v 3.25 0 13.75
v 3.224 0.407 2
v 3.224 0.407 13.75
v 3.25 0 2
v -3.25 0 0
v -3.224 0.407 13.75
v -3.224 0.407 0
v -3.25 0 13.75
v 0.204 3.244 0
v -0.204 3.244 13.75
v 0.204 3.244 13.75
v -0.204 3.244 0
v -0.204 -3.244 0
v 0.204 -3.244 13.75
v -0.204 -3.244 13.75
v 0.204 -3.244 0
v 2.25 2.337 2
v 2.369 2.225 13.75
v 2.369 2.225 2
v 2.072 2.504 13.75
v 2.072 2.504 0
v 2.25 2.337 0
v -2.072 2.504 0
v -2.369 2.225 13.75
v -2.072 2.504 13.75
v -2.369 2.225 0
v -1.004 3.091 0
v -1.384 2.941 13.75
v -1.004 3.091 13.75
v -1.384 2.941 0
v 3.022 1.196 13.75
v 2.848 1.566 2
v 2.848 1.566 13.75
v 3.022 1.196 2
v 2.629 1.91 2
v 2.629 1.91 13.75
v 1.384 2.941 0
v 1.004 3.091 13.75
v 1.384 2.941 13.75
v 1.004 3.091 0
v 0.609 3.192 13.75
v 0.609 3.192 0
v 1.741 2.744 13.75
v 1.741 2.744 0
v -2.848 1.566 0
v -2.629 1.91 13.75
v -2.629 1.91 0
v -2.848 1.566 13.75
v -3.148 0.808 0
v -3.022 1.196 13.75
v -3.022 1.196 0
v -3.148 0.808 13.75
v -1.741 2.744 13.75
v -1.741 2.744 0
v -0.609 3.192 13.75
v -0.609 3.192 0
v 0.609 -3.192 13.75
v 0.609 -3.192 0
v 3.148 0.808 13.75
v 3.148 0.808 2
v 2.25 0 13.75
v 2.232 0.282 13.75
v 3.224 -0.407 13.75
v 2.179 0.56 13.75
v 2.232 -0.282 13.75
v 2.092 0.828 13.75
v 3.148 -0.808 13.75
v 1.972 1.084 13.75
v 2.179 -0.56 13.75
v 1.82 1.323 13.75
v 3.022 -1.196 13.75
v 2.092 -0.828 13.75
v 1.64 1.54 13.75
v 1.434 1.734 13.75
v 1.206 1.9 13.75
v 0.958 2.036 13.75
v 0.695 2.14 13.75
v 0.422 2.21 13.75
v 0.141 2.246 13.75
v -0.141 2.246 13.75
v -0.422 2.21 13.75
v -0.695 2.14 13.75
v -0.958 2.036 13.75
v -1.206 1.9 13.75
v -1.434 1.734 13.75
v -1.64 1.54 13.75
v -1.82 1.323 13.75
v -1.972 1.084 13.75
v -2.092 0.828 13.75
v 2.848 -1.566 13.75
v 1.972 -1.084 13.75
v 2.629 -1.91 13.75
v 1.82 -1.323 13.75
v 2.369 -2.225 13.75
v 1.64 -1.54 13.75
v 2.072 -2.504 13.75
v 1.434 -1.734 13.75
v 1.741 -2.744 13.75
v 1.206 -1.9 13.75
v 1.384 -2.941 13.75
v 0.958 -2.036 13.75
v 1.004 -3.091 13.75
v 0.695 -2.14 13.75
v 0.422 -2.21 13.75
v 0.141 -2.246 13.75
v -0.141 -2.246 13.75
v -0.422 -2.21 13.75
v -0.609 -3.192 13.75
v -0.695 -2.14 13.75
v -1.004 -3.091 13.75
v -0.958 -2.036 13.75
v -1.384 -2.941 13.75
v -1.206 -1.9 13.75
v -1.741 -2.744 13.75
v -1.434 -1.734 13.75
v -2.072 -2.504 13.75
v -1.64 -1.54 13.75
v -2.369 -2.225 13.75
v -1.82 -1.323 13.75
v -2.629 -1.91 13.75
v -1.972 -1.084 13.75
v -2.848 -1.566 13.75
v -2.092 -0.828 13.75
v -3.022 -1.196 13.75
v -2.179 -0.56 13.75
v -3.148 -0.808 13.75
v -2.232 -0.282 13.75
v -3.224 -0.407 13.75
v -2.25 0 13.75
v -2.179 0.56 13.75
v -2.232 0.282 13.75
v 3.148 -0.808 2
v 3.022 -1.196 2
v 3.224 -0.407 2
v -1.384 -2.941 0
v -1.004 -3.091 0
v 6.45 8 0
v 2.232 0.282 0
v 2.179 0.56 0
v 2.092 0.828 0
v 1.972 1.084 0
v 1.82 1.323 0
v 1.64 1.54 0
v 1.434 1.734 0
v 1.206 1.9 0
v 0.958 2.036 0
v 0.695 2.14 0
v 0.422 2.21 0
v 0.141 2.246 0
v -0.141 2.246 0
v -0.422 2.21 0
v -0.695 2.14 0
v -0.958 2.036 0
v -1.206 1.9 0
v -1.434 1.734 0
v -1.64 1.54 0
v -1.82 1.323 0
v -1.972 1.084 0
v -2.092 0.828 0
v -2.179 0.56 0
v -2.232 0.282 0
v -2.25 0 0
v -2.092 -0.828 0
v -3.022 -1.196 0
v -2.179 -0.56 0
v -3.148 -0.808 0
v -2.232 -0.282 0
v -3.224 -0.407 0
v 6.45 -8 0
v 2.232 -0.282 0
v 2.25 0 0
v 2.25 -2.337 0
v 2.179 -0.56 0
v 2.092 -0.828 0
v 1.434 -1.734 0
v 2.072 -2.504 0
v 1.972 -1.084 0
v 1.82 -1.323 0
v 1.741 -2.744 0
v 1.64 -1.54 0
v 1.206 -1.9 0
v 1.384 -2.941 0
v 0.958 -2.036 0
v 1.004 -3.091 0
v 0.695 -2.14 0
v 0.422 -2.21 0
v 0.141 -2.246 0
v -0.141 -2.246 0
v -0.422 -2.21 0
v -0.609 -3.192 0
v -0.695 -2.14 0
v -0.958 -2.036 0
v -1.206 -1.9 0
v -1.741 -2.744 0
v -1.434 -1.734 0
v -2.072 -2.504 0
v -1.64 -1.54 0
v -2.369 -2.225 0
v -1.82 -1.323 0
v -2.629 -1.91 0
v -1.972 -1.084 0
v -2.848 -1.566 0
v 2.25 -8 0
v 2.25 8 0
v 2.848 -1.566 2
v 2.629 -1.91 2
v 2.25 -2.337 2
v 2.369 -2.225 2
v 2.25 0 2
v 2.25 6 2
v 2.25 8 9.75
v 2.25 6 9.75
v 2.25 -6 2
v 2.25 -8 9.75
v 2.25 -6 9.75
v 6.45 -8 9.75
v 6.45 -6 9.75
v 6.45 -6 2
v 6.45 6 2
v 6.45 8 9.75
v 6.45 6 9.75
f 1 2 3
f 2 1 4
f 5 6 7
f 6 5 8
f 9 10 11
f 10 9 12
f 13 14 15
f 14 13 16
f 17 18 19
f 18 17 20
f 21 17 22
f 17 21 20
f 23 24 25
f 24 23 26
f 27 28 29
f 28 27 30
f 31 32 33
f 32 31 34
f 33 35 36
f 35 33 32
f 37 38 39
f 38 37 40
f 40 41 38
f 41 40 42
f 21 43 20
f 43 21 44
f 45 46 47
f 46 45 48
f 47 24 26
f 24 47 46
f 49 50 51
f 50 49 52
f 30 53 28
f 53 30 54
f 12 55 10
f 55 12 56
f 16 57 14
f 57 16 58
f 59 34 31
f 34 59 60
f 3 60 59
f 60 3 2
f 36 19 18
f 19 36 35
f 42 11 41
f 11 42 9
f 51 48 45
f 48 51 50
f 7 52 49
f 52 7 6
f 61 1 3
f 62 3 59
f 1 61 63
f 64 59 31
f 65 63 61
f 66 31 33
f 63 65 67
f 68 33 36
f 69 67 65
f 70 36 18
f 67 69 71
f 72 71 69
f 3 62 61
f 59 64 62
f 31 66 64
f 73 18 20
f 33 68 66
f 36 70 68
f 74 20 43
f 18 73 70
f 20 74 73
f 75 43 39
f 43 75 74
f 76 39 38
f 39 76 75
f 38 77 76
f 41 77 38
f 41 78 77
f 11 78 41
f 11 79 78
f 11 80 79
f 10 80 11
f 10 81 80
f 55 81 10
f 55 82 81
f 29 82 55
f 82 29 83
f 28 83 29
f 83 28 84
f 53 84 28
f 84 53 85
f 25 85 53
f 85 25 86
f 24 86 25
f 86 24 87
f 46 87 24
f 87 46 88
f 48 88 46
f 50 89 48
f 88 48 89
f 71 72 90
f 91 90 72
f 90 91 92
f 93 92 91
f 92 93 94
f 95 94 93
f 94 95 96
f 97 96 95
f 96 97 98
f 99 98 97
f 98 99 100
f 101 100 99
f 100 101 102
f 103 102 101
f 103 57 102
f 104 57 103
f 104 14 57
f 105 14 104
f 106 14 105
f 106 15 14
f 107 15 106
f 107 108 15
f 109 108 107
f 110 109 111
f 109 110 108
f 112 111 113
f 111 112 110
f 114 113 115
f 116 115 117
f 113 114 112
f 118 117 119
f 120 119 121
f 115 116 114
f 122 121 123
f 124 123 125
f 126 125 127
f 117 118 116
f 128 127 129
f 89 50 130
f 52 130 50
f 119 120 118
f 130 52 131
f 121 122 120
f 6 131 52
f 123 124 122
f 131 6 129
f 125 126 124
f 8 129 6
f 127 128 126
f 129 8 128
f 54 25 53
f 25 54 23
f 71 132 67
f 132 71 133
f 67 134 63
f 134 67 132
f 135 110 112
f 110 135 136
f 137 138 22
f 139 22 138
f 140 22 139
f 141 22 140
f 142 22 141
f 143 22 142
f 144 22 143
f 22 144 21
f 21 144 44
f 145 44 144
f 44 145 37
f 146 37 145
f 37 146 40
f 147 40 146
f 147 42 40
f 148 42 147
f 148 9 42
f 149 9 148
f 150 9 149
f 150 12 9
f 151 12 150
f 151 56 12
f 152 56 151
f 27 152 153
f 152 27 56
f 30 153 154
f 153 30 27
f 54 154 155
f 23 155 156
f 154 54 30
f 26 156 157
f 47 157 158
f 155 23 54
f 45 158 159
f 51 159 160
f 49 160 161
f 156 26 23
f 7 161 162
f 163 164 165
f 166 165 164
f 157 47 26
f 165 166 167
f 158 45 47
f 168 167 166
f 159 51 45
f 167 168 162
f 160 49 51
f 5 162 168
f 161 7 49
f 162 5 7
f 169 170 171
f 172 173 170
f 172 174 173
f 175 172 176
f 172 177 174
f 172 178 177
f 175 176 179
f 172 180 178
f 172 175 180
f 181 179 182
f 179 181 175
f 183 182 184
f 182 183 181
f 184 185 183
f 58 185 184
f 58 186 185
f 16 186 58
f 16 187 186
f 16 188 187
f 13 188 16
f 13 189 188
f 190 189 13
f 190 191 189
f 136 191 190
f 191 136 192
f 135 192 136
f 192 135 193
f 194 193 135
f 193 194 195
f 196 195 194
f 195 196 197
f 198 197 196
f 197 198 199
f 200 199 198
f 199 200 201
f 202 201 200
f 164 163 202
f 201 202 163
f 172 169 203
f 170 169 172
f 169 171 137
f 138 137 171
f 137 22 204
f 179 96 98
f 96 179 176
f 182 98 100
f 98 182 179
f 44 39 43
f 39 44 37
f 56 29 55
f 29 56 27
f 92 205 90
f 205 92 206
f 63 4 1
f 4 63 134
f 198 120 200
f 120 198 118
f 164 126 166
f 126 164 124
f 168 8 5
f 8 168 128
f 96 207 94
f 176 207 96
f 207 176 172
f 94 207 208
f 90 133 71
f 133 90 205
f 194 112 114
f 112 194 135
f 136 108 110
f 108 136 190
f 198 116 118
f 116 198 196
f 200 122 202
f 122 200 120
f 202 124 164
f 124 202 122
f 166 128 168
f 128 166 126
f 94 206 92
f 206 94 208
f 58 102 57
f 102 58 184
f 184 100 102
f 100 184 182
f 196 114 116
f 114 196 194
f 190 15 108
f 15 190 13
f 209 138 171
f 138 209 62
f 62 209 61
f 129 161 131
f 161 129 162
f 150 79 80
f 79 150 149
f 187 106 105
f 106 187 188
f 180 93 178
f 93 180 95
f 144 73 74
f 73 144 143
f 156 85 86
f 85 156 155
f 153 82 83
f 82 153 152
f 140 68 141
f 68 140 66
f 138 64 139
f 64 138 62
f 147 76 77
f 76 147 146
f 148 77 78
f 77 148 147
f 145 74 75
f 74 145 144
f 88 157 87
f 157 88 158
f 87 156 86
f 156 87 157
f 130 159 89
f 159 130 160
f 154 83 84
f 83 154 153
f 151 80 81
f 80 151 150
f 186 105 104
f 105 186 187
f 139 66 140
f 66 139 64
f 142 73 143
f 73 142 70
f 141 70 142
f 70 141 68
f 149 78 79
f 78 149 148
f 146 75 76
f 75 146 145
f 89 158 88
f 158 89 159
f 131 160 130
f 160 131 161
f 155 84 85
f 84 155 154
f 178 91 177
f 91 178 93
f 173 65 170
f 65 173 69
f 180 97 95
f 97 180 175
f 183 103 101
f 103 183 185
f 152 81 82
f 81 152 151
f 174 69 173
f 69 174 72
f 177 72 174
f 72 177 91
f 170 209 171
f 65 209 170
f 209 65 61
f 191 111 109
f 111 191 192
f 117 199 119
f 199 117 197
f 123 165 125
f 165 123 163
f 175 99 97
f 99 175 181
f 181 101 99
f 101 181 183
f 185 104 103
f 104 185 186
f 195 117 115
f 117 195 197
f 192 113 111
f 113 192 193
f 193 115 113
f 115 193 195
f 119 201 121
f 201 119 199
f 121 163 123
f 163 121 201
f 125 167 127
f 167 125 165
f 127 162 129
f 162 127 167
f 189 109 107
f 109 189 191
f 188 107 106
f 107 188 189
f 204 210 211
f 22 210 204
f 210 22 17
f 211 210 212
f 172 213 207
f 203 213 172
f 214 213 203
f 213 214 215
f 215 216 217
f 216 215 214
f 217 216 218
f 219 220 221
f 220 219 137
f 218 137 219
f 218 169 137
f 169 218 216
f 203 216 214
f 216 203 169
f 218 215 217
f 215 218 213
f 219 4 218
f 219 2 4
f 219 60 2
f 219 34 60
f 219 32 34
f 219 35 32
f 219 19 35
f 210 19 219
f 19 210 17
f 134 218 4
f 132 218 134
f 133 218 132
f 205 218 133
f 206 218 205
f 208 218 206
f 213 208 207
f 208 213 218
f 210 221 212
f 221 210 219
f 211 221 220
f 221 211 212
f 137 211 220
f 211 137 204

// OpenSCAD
pot_width = 9.75;
pot_height = 12;
pot_length= 2.2;
pot_holder_width = 2;

skewer_radius = 4.5/2;
skewer_rim = 1.0;

$fn = 50;

module SkewerPipe() {
    skewer_pipe_total = skewer_radius + skewer_rim;
    skewer_height_total = pot_holder_width * 2 + pot_width;
    difference() {
        cylinder(skewer_height_total, skewer_pipe_total, skewer_pipe_total, false);
        cylinder(skewer_height_total, skewer_radius, skewer_radius, false);
    }
}

module PotHolderSide() {
    pot_length_ext = pot_length + 2;
    translate([skewer_radius, -pot_height/2  - pot_holder_width, 0])
    {
        cube([pot_length_ext, pot_holder_width, pot_width], false);
        translate([0, pot_holder_width, 0]) {
            cube([pot_length_ext, pot_height, pot_holder_width], false);
        }
    }
    translate([skewer_radius, pot_height/2, 0])
    {
        cube([pot_length_ext, pot_holder_width, pot_width], false);       
    }
}

union() {
    SkewerPipe();
    PotHolderSide();
}
